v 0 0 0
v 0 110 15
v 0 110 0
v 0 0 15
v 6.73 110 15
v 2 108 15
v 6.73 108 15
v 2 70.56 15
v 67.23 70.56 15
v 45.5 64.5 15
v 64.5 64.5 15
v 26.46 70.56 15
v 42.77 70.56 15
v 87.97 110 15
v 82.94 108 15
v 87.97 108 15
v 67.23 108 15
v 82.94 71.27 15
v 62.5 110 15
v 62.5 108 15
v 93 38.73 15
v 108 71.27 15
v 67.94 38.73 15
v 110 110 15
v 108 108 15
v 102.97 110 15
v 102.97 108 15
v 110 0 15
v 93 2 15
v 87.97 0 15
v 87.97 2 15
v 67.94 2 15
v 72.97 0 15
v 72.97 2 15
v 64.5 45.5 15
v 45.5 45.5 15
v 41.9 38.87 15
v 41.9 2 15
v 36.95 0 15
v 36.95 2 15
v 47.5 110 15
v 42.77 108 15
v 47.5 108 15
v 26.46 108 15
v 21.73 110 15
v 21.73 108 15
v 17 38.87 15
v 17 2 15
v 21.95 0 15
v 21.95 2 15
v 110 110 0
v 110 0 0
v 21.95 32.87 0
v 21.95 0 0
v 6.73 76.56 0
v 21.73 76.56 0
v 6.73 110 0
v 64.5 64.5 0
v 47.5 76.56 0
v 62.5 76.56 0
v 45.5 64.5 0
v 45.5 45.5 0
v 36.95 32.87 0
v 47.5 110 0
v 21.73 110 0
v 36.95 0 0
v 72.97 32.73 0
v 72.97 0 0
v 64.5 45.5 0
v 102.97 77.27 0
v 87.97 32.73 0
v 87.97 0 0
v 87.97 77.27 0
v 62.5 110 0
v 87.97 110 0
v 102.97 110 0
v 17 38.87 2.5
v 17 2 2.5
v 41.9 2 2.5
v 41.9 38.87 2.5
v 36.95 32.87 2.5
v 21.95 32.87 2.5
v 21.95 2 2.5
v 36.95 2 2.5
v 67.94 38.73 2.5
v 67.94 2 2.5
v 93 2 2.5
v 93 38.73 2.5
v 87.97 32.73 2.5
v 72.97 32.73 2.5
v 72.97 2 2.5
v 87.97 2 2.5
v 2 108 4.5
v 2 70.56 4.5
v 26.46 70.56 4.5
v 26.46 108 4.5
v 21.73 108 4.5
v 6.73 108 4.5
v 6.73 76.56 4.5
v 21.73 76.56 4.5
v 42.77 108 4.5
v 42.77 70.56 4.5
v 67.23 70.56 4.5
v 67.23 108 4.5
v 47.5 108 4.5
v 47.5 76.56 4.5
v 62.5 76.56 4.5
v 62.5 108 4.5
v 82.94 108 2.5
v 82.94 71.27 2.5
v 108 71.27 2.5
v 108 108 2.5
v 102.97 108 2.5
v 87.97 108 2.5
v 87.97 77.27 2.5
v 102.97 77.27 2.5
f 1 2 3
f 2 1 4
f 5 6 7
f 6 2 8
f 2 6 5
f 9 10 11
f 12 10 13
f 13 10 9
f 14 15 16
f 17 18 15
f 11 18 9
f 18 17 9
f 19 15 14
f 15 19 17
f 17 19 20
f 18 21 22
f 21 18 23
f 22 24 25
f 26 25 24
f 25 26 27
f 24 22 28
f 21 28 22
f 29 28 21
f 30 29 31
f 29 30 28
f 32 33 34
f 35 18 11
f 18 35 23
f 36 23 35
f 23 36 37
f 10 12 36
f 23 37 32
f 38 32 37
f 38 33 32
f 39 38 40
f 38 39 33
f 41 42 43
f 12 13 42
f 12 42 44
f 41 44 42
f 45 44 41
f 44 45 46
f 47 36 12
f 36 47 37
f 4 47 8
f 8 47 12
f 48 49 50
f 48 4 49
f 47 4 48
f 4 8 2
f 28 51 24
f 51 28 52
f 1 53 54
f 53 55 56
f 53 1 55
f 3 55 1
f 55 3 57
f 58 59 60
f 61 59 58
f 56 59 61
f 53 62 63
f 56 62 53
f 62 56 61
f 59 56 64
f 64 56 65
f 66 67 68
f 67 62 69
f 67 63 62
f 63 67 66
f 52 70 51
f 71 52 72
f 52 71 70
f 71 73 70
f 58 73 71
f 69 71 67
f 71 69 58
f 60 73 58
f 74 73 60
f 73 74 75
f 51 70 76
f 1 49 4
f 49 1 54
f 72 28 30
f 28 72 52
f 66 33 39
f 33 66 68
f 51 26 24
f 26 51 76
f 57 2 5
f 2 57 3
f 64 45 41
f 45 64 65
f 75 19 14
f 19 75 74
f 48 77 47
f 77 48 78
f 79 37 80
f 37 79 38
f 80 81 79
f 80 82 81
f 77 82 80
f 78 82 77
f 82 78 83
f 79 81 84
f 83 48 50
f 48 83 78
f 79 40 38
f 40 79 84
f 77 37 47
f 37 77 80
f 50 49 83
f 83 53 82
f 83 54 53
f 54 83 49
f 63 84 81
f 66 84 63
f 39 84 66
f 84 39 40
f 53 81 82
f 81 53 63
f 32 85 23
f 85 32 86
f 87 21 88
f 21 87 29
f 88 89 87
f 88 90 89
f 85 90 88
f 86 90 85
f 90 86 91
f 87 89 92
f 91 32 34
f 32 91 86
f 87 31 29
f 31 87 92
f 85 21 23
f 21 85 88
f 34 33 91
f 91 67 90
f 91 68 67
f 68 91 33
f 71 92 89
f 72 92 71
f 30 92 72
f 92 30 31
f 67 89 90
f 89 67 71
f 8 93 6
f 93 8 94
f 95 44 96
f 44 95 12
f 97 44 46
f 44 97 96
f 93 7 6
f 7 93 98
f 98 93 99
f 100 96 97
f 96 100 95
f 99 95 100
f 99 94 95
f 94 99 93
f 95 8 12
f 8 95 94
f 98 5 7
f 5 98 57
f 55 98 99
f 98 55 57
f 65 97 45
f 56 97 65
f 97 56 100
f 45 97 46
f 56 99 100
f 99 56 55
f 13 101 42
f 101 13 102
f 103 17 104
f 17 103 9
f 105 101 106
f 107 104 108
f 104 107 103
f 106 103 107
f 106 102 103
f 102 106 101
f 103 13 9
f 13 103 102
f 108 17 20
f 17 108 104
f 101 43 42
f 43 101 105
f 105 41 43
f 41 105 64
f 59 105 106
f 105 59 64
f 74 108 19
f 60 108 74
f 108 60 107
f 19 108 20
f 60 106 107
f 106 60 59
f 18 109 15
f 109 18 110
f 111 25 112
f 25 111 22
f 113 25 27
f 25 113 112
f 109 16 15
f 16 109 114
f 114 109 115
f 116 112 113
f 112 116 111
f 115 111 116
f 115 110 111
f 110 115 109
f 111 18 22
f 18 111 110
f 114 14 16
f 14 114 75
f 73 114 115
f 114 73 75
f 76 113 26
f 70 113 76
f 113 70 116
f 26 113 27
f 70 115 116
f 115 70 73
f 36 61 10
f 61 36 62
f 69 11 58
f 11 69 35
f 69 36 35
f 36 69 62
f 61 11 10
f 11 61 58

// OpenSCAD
length = 110;
width = 110;
height = 15;

//Based on magnet size:
magnetBaseInnerDiameter = 19;
magnetHeight = 4.0;

//living spirit x 6, 35.87 x 23.9, 22.87 base
//cultist x 6, 35.69 x 20.64x full (ish) base

//living bones (2 stacks of 5) 36.44 x 23.46, base 19.15
//living corpse x 6, 35.73 x 24.06, full (ish) base

token1Width = 35.87 + 1;
token1Length = 23.9 + 1;
token1Height = 12 + .5;
token1SquareLipWidthRemainder = token1Length - 15;
token1SquareLipLengthRemainder = 4;

token3Width = 35.69 + 1;
token3Length = 20.64 + 1;
token3Height = 12 + .5;
token3SquareLipWidthRemainder = token3Length - 15;
token3SquareLipLengthRemainder = 4;

token4Width = 36.44 + 1;
token4Length = 23.46 + 1;
token4Height = 10 + .5;
token4SquareLipWidthRemainder = token4Length - 15;
token4SquareLipLengthRemainder = 4;

token5Width = 36.44 + 1;
token5Length = 23.46 + 1;
token5Height = 10 + .5;
token5SquareLipWidthRemainder = token5Length - 15;
token5SquareLipLengthRemainder = 4;

token6Width = 35.73 + 1;
token6Length = 24.06 + 1;
token6Height = 12 + .5;
token6SquareLipWidthRemainder = token6Length - 15;
token6SquareLipLengthRemainder = 4;

spaceBetweenCircles = 2;
wallThickness = spaceBetweenCircles;



difference(){
    cube([length, width, height]);


//----------------------------------
translate(
        [
            wallThickness + 15,
            wallThickness,
            height - token1Height
        ])
        cube([token1Length,token1Width, token1Height]);
    translate([
        wallThickness + token1SquareLipWidthRemainder/2 + 15,
        0,
        0])
        cube([
            token1Length - token1SquareLipWidthRemainder,
            token1Width - token1SquareLipLengthRemainder,
            height]);

            
translate(
        [
            length - (wallThickness + token6Length + 15),
            wallThickness,
            height - token6Height
        ])
        cube([token6Length,token6Width, token6Height]);
    translate([
        length - (wallThickness + token6Length + 15) + token6SquareLipWidthRemainder/2,
        0,
        0])
        cube([
            token6Length - token6SquareLipWidthRemainder,
            token6Width - token6SquareLipLengthRemainder,
            height]);

            
//---------------------------------------------------------------------
    
    translate(
        [
            wallThickness,
            width - (wallThickness + token4Width),
            height - token4Height
        ])
        cube([token4Length,token4Width, token4Height]);
    translate([
        wallThickness + token4SquareLipWidthRemainder/2,
        width - (token4Width - token4SquareLipLengthRemainder),
        0])
        cube([
            token4Length - token4SquareLipWidthRemainder,
            token4Width - token4SquareLipLengthRemainder,
            height]);
            
    translate(
        [
            length/2 - token5Length/2,
            width - (wallThickness + token5Width),
            height - token5Height
        ])
        cube([token5Length,token5Width, token5Height]);
    translate([
        length/2 - (token5Length - token5SquareLipWidthRemainder)/2,
        width - (token5Width - token5SquareLipLengthRemainder),
        0])
        cube([
            token5Length - token5SquareLipWidthRemainder,
            token5Width - token5SquareLipLengthRemainder,
            height]);

    translate(
        [
            length - (wallThickness + token6Length),
            width - (wallThickness + token6Width),
            height - token6Height
        ])
        cube([token6Length,token6Width, token6Height]);
    translate([
        length - (wallThickness + token6Length) + token6SquareLipWidthRemainder/2,
        width - (token6Width - token6SquareLipLengthRemainder),
        0])
        cube([
            token6Length - token6SquareLipWidthRemainder,
            token6Width - token6SquareLipLengthRemainder,
            height]);       

//----------------------------------------
   
    translate([length/2 - magnetBaseInnerDiameter/2, width/2 - magnetBaseInnerDiameter/2, 0])
        cube([magnetBaseInnerDiameter, magnetBaseInnerDiameter, height]);
        

}
